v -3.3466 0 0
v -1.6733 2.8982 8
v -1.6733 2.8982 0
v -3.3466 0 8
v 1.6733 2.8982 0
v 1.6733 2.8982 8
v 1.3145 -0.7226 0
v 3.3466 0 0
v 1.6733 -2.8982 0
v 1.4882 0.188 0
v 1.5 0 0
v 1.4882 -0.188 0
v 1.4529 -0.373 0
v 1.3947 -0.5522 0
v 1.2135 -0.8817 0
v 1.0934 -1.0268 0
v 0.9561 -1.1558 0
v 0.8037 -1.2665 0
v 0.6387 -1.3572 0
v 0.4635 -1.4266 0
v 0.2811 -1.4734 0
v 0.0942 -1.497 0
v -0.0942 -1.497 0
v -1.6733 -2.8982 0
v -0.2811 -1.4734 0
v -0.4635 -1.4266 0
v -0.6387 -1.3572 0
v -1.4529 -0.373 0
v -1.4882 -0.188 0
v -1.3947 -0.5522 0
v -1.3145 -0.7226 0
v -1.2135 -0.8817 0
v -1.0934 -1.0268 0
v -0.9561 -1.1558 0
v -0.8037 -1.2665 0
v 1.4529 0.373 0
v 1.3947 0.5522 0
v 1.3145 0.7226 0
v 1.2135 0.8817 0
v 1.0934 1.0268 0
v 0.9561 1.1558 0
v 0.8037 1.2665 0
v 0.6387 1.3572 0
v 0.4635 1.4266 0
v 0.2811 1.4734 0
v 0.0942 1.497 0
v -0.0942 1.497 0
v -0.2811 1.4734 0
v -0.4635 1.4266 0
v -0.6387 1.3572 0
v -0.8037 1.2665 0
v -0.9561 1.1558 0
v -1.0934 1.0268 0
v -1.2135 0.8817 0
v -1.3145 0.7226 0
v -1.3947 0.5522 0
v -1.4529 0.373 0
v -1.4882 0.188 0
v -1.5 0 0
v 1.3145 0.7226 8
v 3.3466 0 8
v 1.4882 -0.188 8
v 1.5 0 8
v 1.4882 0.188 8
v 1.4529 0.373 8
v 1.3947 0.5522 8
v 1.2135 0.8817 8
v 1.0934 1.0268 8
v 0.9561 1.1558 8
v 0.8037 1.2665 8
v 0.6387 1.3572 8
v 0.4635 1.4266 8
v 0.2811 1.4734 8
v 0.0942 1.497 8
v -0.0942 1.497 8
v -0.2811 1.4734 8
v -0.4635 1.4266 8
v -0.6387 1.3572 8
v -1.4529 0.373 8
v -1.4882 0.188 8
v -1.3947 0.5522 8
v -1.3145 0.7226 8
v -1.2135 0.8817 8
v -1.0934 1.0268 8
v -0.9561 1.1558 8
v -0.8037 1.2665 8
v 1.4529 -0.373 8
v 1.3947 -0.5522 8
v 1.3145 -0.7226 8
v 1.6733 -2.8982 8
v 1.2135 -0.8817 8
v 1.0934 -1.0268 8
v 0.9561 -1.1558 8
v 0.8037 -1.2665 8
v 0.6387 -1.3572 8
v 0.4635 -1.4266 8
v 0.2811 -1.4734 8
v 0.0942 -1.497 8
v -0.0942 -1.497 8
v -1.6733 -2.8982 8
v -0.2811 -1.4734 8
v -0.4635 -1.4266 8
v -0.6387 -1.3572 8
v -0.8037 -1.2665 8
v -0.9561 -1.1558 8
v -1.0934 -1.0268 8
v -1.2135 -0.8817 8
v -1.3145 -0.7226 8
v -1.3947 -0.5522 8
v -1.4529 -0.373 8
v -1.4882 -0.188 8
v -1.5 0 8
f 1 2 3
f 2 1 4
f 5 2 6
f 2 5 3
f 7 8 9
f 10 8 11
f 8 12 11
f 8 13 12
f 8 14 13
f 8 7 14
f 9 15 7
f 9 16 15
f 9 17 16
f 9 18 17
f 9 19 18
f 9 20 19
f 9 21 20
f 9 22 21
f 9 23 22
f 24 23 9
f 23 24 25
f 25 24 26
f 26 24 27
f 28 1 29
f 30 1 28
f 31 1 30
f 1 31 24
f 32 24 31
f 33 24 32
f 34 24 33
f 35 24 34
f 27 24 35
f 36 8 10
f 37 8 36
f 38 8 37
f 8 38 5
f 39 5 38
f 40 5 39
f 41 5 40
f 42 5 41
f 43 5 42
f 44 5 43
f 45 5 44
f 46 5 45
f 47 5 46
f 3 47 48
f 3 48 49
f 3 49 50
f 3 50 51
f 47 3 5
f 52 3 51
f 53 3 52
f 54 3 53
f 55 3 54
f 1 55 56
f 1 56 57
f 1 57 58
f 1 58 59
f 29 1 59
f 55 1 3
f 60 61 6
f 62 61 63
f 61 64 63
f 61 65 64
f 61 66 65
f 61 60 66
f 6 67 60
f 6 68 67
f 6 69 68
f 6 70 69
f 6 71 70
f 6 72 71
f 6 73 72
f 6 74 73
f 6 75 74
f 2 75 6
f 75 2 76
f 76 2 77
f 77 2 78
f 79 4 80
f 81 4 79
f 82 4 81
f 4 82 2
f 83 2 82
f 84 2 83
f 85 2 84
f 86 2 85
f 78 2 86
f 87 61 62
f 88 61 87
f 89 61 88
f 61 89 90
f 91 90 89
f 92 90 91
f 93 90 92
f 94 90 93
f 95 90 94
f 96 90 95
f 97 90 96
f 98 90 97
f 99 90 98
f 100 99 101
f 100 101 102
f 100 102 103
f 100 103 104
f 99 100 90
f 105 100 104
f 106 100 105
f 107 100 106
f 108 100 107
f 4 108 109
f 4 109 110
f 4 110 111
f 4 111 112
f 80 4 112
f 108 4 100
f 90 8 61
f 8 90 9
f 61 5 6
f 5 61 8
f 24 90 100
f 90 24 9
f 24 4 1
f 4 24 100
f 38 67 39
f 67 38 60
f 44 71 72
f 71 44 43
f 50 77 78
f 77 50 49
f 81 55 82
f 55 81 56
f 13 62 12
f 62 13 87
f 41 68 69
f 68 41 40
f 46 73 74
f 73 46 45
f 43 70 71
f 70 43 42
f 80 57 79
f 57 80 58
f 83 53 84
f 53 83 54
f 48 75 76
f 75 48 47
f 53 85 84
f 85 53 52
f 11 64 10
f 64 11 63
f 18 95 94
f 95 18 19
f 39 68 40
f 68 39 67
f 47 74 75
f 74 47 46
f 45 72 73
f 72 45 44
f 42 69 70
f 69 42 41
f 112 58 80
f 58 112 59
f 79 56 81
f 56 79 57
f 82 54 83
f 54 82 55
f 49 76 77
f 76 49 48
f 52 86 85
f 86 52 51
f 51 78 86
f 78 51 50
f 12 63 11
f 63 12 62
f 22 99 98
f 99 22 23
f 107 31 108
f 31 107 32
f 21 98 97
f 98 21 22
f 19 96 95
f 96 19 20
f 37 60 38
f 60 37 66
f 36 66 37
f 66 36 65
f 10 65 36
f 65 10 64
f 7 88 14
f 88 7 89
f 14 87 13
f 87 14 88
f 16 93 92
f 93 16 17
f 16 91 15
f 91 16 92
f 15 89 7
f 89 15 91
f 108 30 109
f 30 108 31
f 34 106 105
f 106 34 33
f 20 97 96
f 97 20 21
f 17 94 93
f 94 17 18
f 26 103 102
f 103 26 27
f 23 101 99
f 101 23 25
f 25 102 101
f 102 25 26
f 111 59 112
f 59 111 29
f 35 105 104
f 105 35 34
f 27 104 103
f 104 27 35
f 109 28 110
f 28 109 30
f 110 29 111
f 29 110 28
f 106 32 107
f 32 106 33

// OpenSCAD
$fn = 50;


difference() {
	union() {
		translate(v = [0, 0, 0]) {
			rotate(a = [0, 0, 0]) {
				translate(v = [0, 0, 0]) {
					rotate(a = [0, 0, 0]) {
						linear_extrude(height = 8) {
							polygon(points = [[3.3466000000, 0.0000000000], [1.6733000000, 2.8982406163], [-1.6733000000, 2.8982406163], [-3.3466000000, 0.0000000000], [-1.6733000000, -2.8982406163], [1.6733000000, -2.8982406163]]);
						}
					}
				}
			}
		}
	}
	union() {
		translate(v = [0, 0, 0]) {
			rotate(a = [0, 0, 0]) {
				cylinder(h = 8, r = 1.5000000000);
			}
		}
	}
}
